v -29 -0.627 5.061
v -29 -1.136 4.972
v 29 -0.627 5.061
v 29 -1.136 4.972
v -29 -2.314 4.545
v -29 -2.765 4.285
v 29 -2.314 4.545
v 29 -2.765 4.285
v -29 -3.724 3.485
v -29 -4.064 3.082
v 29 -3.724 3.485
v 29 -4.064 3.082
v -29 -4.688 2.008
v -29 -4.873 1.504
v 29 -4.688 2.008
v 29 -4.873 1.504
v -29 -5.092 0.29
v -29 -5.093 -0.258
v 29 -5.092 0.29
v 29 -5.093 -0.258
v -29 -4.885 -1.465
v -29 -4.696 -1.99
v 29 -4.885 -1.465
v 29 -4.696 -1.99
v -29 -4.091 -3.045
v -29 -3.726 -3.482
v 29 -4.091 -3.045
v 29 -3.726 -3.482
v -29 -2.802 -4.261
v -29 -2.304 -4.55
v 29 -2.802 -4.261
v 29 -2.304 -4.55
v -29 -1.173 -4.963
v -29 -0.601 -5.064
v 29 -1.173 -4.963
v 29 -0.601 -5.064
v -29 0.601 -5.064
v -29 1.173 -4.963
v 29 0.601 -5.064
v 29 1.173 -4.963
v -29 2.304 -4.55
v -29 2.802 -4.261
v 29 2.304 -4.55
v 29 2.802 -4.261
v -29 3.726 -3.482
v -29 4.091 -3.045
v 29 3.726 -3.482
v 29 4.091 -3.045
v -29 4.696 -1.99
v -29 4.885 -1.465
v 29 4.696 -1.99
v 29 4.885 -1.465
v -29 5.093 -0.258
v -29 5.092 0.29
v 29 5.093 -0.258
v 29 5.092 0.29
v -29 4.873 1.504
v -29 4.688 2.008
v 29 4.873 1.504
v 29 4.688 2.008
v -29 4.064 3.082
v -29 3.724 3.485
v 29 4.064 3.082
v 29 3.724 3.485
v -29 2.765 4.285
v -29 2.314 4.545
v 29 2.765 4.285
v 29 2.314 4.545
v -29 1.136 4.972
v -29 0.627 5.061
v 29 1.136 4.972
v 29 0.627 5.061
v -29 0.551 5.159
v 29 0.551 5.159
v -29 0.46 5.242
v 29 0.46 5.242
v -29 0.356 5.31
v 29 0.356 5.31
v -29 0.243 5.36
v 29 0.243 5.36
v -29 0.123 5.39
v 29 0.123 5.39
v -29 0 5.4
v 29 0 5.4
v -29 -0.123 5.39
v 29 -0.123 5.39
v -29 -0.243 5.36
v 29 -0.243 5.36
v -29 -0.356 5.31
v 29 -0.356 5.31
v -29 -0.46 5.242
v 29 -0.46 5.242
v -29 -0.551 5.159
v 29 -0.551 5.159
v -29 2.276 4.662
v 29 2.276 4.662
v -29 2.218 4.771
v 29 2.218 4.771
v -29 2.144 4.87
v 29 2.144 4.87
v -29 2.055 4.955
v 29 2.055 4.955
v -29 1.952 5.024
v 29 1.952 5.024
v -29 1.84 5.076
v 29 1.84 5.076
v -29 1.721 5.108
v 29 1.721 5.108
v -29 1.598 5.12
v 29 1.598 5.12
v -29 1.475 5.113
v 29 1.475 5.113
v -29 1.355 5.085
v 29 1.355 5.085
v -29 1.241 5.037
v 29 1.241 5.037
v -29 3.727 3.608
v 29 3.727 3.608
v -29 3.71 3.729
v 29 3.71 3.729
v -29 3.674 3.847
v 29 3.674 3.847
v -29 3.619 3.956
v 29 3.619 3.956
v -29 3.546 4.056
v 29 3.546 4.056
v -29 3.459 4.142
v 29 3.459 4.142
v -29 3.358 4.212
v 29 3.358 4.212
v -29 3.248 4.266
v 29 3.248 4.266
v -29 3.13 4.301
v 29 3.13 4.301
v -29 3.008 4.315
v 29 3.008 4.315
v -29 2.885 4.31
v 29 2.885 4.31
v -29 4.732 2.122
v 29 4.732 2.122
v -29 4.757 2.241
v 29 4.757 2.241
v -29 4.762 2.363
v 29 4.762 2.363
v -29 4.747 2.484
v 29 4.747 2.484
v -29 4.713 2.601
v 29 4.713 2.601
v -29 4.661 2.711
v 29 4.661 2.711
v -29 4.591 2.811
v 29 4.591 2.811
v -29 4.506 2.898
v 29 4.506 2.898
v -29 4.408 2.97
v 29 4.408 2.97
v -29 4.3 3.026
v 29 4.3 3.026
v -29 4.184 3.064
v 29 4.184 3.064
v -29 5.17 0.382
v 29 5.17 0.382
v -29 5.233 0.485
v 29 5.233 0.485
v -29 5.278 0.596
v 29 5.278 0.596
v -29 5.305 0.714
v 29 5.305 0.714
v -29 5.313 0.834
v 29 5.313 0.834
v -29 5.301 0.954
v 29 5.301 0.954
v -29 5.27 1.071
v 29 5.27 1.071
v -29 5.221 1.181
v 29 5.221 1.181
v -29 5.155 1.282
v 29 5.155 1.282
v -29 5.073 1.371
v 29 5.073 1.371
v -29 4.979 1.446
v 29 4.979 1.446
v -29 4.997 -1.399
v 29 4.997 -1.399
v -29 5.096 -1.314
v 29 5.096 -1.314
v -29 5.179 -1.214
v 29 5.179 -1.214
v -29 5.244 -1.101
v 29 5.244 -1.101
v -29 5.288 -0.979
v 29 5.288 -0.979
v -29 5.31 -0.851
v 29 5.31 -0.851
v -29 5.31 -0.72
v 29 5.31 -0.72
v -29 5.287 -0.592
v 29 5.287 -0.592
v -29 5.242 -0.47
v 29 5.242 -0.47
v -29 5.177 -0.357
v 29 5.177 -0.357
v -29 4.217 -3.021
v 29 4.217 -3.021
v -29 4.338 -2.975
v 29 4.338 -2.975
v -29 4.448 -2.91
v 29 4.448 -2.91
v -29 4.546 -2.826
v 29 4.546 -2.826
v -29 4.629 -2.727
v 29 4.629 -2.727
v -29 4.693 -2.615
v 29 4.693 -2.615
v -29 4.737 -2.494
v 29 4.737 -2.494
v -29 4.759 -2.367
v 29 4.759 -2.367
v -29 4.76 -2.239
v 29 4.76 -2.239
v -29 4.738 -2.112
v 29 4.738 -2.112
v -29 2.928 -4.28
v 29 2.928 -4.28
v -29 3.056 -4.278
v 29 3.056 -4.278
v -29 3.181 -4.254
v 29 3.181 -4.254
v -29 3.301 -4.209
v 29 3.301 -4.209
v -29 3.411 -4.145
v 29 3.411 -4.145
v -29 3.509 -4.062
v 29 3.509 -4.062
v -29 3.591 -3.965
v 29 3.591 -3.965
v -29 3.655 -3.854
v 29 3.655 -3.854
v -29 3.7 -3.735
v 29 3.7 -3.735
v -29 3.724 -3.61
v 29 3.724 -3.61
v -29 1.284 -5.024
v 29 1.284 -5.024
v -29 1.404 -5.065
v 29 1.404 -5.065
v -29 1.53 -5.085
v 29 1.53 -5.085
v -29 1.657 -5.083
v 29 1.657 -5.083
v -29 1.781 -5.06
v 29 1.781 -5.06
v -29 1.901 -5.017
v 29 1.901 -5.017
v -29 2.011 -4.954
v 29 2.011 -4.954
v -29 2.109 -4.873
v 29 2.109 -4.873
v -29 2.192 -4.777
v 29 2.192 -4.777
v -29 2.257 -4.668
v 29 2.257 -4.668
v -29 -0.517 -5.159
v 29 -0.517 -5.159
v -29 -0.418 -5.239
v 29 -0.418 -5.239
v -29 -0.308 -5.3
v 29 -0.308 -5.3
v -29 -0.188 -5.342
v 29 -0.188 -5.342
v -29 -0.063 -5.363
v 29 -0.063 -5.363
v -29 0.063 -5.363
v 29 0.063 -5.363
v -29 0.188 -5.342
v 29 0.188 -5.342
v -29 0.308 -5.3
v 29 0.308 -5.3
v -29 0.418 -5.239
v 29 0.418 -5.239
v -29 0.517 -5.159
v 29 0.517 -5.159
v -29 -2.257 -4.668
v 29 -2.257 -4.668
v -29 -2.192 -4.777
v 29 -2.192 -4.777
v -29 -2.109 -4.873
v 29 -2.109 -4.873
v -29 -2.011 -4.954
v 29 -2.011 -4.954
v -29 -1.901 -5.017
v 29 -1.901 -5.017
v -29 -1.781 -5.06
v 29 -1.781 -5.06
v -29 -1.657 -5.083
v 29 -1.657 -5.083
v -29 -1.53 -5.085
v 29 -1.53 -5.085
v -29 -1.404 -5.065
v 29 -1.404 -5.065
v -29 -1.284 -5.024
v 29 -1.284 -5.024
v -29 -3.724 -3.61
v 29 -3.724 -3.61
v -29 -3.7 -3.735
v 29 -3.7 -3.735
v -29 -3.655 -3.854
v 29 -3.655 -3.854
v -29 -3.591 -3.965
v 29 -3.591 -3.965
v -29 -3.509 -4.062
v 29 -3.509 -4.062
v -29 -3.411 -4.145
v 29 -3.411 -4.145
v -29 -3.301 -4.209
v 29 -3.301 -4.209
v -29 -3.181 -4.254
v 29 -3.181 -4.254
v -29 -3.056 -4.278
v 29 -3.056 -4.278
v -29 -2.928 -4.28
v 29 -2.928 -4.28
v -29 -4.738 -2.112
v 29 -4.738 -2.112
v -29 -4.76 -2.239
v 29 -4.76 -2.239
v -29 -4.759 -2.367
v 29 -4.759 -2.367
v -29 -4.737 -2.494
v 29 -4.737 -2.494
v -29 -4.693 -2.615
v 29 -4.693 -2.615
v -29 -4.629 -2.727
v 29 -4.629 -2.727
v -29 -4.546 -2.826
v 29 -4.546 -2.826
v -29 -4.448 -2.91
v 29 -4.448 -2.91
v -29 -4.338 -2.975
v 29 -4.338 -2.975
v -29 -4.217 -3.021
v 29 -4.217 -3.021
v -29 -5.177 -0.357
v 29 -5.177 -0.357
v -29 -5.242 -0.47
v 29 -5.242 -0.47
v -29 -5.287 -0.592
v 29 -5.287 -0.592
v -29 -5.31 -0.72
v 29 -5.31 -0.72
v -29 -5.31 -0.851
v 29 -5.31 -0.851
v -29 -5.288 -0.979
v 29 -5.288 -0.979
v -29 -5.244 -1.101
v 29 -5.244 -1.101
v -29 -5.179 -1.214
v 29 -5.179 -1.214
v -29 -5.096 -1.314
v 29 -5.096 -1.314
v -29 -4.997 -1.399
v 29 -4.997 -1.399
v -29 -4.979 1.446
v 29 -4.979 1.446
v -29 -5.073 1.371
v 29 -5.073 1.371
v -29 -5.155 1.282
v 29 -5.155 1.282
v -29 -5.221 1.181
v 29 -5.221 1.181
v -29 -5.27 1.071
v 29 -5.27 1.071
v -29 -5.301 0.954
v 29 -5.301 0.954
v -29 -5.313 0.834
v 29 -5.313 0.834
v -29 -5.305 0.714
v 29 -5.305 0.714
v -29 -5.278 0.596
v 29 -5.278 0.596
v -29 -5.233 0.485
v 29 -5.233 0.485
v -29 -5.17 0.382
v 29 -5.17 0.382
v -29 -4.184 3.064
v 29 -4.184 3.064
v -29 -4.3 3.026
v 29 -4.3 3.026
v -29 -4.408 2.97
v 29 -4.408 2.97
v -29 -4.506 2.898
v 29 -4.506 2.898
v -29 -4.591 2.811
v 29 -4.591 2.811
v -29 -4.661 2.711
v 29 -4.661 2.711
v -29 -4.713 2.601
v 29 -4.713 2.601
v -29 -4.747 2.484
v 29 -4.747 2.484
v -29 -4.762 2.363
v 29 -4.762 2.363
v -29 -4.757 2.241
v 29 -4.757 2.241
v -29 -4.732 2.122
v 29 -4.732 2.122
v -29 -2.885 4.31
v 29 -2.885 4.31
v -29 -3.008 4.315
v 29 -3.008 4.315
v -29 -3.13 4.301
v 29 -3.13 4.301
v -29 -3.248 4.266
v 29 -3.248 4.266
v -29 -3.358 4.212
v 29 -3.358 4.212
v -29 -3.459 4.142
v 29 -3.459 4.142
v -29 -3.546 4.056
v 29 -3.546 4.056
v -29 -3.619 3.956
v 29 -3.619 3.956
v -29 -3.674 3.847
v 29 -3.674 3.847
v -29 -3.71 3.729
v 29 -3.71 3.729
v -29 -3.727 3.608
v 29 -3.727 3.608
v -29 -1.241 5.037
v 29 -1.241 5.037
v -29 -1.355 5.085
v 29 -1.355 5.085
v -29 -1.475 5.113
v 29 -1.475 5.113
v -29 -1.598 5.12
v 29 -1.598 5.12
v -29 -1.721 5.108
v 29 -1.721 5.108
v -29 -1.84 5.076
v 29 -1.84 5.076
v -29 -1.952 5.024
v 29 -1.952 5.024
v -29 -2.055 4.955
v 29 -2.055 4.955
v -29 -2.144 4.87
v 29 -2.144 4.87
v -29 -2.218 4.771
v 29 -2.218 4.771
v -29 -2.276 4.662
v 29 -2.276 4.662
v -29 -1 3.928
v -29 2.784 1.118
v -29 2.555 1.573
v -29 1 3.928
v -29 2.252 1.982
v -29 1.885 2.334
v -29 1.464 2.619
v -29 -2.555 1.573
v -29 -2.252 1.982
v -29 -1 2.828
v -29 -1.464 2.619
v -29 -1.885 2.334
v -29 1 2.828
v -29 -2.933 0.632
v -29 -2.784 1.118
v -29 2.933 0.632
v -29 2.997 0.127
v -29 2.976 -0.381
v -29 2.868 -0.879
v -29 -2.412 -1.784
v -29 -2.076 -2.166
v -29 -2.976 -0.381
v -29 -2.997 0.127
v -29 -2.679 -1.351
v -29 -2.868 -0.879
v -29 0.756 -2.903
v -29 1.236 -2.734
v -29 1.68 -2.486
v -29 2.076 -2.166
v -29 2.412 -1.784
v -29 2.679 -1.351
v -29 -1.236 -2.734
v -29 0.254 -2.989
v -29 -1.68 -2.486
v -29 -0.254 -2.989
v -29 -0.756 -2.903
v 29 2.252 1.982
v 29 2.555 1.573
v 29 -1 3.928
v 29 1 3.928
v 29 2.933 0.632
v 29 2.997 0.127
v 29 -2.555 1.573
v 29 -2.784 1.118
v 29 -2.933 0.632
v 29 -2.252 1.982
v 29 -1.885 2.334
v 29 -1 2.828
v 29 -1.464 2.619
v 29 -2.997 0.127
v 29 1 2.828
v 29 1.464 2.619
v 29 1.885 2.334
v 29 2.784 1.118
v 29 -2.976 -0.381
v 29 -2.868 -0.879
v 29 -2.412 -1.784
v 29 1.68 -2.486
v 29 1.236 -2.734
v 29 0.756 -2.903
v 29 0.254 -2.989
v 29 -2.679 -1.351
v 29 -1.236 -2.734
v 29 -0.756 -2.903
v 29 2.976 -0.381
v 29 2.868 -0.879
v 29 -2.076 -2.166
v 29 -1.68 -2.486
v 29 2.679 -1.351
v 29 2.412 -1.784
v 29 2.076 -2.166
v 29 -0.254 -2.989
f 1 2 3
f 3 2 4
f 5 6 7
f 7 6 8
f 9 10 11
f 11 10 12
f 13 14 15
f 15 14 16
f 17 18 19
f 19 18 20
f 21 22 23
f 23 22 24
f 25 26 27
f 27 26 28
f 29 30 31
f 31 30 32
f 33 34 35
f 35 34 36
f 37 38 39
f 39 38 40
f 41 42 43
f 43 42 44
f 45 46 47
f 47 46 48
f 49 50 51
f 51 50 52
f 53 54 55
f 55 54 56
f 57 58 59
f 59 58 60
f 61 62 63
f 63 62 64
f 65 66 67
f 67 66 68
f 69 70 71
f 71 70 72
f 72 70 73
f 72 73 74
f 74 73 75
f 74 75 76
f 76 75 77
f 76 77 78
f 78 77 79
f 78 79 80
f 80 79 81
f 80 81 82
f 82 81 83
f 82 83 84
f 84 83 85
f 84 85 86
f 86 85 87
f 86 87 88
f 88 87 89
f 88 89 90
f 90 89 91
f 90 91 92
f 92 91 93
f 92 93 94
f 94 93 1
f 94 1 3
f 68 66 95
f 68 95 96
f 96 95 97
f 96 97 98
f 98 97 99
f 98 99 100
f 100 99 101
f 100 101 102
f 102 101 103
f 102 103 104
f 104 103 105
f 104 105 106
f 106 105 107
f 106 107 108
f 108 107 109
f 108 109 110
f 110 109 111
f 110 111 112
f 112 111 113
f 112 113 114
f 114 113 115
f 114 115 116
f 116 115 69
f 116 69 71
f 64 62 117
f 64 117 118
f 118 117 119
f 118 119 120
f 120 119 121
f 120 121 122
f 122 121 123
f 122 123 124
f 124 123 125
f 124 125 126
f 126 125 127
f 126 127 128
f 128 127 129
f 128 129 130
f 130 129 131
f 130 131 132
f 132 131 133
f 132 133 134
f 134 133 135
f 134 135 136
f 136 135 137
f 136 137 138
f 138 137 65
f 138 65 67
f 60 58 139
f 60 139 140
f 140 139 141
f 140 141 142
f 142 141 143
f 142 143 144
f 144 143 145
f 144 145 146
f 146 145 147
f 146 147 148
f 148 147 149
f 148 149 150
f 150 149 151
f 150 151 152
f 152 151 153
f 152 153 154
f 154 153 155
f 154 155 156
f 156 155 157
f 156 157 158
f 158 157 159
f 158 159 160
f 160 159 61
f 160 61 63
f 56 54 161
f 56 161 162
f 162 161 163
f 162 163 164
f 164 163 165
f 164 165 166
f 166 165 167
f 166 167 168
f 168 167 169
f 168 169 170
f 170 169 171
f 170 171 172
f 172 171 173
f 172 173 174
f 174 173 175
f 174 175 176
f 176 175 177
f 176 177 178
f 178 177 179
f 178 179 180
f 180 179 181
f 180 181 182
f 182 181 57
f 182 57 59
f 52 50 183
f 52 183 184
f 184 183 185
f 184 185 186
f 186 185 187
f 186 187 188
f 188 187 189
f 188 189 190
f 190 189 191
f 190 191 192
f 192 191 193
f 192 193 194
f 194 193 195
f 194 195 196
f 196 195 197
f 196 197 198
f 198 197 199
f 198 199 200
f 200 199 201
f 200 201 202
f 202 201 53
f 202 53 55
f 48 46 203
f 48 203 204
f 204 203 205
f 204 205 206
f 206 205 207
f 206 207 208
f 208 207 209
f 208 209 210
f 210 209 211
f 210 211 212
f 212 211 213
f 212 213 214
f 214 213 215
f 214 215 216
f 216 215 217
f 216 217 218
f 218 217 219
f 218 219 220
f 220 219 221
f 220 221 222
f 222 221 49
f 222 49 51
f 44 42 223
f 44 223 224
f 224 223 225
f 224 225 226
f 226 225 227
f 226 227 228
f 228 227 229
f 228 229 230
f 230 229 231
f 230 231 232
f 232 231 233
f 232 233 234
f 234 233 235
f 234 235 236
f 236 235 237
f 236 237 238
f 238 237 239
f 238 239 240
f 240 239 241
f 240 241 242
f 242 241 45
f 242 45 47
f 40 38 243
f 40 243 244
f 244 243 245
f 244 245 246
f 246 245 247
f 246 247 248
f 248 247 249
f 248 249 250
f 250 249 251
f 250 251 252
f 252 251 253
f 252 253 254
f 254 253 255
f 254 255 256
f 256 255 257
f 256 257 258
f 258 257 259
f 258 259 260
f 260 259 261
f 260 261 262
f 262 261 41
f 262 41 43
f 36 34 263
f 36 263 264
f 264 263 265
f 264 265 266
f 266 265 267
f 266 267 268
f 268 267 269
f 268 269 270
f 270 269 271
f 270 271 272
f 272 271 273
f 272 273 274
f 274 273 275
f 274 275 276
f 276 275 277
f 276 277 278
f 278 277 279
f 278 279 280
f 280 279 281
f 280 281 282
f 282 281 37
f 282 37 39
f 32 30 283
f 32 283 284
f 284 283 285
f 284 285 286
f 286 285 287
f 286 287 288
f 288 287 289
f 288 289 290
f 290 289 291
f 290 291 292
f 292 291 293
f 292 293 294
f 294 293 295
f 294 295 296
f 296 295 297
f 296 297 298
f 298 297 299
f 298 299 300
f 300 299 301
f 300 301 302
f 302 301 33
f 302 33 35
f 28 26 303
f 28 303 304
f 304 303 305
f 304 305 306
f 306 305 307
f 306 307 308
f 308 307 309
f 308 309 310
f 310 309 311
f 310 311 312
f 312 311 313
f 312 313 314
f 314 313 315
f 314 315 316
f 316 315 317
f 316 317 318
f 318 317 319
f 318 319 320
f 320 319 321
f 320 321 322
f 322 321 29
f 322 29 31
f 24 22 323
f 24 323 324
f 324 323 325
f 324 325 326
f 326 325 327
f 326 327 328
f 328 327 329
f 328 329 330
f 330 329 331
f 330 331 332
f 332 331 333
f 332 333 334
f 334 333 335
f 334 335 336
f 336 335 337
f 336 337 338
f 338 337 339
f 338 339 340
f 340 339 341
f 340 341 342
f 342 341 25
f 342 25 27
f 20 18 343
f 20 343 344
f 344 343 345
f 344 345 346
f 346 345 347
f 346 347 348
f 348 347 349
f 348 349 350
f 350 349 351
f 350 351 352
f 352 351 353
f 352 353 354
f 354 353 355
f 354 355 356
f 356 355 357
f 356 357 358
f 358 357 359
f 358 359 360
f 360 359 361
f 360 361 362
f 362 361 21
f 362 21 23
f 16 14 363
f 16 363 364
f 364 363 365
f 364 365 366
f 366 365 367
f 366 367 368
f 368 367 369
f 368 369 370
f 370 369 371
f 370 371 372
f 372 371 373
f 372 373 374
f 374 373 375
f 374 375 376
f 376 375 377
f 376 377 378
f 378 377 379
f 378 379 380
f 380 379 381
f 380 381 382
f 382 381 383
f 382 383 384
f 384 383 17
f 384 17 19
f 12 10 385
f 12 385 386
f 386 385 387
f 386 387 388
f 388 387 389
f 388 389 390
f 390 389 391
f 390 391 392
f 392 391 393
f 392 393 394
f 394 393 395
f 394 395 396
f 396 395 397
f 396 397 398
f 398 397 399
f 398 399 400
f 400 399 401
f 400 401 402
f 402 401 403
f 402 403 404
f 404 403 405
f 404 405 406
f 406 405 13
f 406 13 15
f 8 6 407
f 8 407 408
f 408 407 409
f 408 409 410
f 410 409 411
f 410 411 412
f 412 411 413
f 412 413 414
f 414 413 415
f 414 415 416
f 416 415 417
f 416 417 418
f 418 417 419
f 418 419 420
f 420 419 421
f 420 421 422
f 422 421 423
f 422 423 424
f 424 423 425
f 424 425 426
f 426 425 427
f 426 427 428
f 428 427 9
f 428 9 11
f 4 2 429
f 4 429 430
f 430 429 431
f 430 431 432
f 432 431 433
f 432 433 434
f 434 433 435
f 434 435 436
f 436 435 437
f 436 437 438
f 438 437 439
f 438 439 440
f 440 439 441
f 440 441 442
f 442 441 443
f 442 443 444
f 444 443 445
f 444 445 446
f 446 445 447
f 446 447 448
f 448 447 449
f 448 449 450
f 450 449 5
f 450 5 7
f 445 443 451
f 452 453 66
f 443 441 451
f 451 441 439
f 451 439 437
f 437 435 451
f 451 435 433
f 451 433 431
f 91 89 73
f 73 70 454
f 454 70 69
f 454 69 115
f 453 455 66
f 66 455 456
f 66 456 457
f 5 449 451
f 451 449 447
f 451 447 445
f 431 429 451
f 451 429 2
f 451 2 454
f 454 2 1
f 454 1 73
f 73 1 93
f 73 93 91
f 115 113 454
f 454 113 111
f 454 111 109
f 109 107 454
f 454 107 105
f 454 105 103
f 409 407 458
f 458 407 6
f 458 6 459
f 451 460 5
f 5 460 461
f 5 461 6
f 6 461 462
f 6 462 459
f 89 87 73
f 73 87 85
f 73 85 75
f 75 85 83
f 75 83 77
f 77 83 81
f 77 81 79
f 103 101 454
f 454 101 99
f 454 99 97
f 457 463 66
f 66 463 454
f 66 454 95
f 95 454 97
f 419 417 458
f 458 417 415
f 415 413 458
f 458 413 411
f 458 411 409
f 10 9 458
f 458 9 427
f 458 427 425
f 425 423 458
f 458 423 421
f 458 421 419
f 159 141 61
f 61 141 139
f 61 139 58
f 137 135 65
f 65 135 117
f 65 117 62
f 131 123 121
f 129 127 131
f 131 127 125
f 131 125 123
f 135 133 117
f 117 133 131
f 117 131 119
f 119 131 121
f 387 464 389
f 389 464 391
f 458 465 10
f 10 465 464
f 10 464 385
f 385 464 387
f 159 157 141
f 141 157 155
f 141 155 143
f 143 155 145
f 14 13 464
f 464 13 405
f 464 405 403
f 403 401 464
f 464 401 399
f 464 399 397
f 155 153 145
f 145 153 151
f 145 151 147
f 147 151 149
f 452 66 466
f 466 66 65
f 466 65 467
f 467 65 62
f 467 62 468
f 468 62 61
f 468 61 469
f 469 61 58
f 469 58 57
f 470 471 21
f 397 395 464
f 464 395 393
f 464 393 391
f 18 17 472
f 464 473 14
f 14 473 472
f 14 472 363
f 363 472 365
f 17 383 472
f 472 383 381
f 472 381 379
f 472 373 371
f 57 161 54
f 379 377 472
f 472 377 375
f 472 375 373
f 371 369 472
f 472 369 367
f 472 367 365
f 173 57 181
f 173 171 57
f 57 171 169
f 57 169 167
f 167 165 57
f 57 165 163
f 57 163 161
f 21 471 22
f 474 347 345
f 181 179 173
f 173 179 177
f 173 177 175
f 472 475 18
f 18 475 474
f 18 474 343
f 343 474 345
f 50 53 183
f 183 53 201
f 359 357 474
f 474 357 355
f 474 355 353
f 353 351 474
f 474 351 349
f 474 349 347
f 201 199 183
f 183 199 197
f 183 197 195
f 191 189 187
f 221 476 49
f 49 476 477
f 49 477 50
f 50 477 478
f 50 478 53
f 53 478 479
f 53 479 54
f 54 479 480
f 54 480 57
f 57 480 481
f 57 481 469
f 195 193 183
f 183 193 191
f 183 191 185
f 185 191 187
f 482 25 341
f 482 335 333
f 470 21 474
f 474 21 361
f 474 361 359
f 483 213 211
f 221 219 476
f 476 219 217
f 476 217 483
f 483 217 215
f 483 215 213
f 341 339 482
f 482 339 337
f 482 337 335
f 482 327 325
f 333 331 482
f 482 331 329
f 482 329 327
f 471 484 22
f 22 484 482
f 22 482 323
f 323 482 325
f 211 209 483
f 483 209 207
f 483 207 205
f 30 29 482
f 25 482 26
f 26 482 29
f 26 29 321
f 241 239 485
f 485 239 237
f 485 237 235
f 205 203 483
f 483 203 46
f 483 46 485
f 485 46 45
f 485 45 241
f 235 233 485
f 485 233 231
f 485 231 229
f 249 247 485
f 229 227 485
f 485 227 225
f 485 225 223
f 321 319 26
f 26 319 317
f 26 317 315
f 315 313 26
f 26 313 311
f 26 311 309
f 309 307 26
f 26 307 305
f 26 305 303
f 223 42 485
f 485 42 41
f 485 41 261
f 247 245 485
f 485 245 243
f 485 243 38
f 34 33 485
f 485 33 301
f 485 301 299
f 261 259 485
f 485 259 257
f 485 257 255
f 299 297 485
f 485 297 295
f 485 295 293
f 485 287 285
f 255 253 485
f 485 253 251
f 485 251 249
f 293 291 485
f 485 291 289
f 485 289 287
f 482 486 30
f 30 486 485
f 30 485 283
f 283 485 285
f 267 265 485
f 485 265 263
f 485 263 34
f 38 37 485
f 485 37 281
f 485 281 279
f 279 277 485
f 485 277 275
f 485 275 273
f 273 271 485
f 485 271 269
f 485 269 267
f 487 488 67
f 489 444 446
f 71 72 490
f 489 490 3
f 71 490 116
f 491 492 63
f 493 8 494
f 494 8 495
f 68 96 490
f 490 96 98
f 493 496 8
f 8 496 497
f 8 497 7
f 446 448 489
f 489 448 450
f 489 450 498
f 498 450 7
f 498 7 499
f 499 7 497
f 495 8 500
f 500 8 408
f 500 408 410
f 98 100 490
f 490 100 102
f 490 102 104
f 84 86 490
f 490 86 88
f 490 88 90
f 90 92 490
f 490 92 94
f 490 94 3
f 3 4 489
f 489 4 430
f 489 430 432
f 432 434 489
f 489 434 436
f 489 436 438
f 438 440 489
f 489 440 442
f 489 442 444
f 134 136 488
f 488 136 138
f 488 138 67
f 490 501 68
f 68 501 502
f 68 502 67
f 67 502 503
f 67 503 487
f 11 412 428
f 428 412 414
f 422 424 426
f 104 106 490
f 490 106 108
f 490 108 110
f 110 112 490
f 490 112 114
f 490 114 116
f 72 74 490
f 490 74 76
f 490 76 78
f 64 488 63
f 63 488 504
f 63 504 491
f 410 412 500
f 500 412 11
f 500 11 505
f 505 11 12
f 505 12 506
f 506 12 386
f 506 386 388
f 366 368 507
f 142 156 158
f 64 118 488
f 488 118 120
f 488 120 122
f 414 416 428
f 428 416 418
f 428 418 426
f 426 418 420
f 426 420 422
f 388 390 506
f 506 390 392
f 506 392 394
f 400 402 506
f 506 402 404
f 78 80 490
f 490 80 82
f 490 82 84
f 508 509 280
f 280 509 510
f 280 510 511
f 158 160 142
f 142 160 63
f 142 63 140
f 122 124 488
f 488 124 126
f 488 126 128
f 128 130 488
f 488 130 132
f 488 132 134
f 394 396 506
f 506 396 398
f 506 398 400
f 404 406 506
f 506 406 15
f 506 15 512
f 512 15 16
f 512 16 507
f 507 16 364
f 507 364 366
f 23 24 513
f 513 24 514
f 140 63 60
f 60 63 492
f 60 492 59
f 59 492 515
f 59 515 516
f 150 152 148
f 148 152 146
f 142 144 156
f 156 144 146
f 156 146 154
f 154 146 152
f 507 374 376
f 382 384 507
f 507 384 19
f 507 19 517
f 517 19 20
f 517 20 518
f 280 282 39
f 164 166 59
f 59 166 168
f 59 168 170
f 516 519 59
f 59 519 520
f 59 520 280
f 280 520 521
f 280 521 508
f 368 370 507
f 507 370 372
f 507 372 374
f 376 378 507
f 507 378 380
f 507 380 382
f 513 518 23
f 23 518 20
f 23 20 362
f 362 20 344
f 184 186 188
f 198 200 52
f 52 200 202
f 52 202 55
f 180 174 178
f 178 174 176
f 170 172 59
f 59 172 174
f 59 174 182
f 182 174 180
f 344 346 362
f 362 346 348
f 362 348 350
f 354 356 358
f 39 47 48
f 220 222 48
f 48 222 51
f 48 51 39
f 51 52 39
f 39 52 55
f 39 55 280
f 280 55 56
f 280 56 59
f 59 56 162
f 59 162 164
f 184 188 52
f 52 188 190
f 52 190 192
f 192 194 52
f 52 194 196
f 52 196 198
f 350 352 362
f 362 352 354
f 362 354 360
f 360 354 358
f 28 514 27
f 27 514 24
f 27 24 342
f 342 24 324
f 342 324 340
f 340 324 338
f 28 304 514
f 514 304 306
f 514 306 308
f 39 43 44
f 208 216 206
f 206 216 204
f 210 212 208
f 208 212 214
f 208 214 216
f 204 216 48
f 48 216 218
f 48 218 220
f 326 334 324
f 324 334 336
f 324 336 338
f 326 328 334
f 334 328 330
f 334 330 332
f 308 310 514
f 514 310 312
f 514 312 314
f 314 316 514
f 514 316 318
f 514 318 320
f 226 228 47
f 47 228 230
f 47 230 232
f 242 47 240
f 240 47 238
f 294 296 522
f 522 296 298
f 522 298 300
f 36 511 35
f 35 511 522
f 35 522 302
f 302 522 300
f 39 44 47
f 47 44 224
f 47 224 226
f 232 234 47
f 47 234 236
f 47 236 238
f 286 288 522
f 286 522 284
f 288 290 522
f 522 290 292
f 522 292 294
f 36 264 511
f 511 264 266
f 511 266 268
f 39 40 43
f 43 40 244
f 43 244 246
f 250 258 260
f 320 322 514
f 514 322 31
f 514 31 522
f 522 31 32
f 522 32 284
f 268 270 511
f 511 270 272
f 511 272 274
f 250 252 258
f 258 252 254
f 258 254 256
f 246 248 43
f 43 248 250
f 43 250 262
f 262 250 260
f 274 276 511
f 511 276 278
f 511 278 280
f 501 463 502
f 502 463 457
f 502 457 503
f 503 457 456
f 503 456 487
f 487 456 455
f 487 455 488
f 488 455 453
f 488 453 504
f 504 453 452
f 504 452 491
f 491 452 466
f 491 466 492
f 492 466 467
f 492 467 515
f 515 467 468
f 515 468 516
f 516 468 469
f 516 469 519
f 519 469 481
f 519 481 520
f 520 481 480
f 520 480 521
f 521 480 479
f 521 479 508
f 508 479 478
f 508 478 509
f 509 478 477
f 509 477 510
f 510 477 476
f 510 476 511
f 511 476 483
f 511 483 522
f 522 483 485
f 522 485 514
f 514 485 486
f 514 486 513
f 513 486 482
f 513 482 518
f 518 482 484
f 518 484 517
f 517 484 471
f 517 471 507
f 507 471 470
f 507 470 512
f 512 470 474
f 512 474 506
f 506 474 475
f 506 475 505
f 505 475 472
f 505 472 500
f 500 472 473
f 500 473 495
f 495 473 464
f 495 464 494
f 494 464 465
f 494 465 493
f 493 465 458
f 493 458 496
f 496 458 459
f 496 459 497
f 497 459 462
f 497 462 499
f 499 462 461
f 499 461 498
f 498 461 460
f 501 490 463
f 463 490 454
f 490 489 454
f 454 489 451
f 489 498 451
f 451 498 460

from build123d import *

# Parameters (mm, degrees)
SKETCH1_W               = 30
SKETCH1_H               = 5.1
CIRPATTERN1_COUNT       = 18
CUT_EXTRUDE2_DEPTH      = 1
CUT_EXTRUDE2_DEPTH_BACK = 1
SKETCH13_R              = 5.864313224
CUT_EXTRUDE3_DEPTH      = 1
CUT_EXTRUDE3_DEPTH_BACK = 1
SKETCH14_R              = 6.155891313
CUT_EXTRUDE4_DEPTH      = 59.492599661


with BuildPart() as part:
    # Sketch1 → Revolve1 (revolve)
    with BuildSketch(Plane(origin=(0, 0, 0), x_dir=(-1, 0, 0), z_dir=(0, 1, 0))):
        with Locations((-15, 2.55)):
            Rectangle(SKETCH1_W, SKETCH1_H)
    revolve1 = revolve(axis=Axis((0, 0, 0), (1, 0, 0)))

    # Sweep3: sweep along a path in Sketch2
    with BuildLine(Plane(origin=(0, 0, 0), x_dir=(-1, 0, 0), z_dir=(0, 1, 0))) as sweep3_path:
        Line((-30, 5.1), (0, 5.1))
    # Sketch3 → Sweep3 (sweep)
    with BuildSketch(Plane(origin=(0, 0, 0), x_dir=(0, -1, 0), z_dir=(-1, 0, 0))):
        with BuildLine():
            Line((0.75, 4.65), (0.75, 2.55))
            ThreePointArc((0.75, 2.55), (0, 1.8), (-0.75, 2.55))
            Line((-0.75, 2.55), (-0.75, 4.65))
            ThreePointArc((-0.75, 4.65), (0, 5.4), (0.75, 4.65))
        make_face()
    sweep3 = sweep(path=sweep3_path.line)

    # CirPattern1: Sweep3 ×18 about axis
    cirpattern1_axis = Axis((0, 0, 0.01696711), (1, 0, 0))
    for i in range(1, CIRPATTERN1_COUNT):
        add(sweep3.rotate(cirpattern1_axis, i * 360 / CIRPATTERN1_COUNT))

    # Mirror1: Revolve1, Sweep3 across plane
    add(revolve1.mirror(Plane(origin=(0, 0, 0), x_dir=(0, 0, 1), z_dir=(1, 0, 0))))
    add(sweep3.mirror(Plane(origin=(0, 0, 0), x_dir=(0, 0, 1), z_dir=(1, 0, 0))))

    # Mirror1 copy 1: sweep along a path in Mirror1 copy 1 path
    with BuildLine(Plane(origin=(0, 0.005803093, 0.001023242), x_dir=(1, 0, 0), z_dir=(0, 0.9396926207859084, 0.3420201433256687))) as mirror1_copy_1_path:
        Line((-30, -5.1), (0, -5.1))
    # Mirror1 copy 1 sketch → Mirror1 copy 1 (sweep)
    with BuildSketch(Plane(origin=(0, 0.005803093, 0.001023242), x_dir=(0, -0.9396926207859084, -0.3420201433256687), z_dir=(1, 0, 0))):
        with BuildLine():
            Line((0.75, -4.65), (0.75, -2.55))
            ThreePointArc((0.75, -2.55), (0, -1.8), (-0.75, -2.55))
            Line((-0.75, -2.55), (-0.75, -4.65))
            ThreePointArc((-0.75, -4.65), (0, -5.4), (0.75, -4.65))
        make_face()
    sweep(path=mirror1_copy_1_path.line)

    # Mirror1 copy 2: sweep along a path in Mirror1 copy 2 path
    with BuildLine(Plane(origin=(0, 0.010906248, 0.00396955), x_dir=(1, 0, 0), z_dir=(0, 0.766044443118978, 0.6427876096865393))) as mirror1_copy_2_path:
        Line((-30, -5.1), (0, -5.1))
    # Mirror1 copy 2 sketch → Mirror1 copy 2 (sweep)
    with BuildSketch(Plane(origin=(0, 0.010906248, 0.00396955), x_dir=(0, -0.766044443118978, -0.6427876096865393), z_dir=(1, 0, 0))):
        with BuildLine():
            Line((0.75, -4.65), (0.75, -2.55))
            ThreePointArc((0.75, -2.55), (0, -1.8), (-0.75, -2.55))
            Line((-0.75, -2.55), (-0.75, -4.65))
            ThreePointArc((-0.75, -4.65), (0, -5.4), (0.75, -4.65))
        make_face()
    sweep(path=mirror1_copy_2_path.line)

    # Mirror1 copy 3: sweep along a path in Mirror1 copy 3 path
    with BuildLine(Plane(origin=(0, 0.014693948, 0.008483555), x_dir=(1, 0, 0), z_dir=(0, 0.5000000000000001, 0.8660254037844386))) as mirror1_copy_3_path:
        Line((-30, -5.1), (0, -5.1))
    # Mirror1 copy 3 sketch → Mirror1 copy 3 (sweep)
    with BuildSketch(Plane(origin=(0, 0.014693948, 0.008483555), x_dir=(0, -0.5000000000000001, -0.8660254037844386), z_dir=(1, 0, 0))):
        with BuildLine():
            Line((0.75, -4.65), (0.75, -2.55))
            ThreePointArc((0.75, -2.55), (0, -1.8), (-0.75, -2.55))
            Line((-0.75, -2.55), (-0.75, -4.65))
            ThreePointArc((-0.75, -4.65), (0, -5.4), (0.75, -4.65))
        make_face()
    sweep(path=mirror1_copy_3_path.line)

    # Mirror1 copy 4: sweep along a path in Mirror1 copy 4 path
    with BuildLine(Plane(origin=(0, 0.016709341, 0.014020802), x_dir=(1, 0, 0), z_dir=(0, 0.17364817766693041, 0.984807753012208))) as mirror1_copy_4_path:
        Line((-30, -5.1), (0, -5.1))
    # Mirror1 copy 4 sketch → Mirror1 copy 4 (sweep)
    with BuildSketch(Plane(origin=(0, 0.016709341, 0.014020802), x_dir=(0, -0.17364817766693041, -0.984807753012208), z_dir=(1, 0, 0))):
        with BuildLine():
            Line((0.75, -4.65), (0.75, -2.55))
            ThreePointArc((0.75, -2.55), (0, -1.8), (-0.75, -2.55))
            Line((-0.75, -2.55), (-0.75, -4.65))
            ThreePointArc((-0.75, -4.65), (0, -5.4), (0.75, -4.65))
        make_face()
    sweep(path=mirror1_copy_4_path.line)

    # Mirror1 copy 5: sweep along a path in Mirror1 copy 5 path
    with BuildLine(Plane(origin=(0, 0.016709341, 0.019913417), x_dir=(1, 0, 0), z_dir=(0, -0.1736481776669303, 0.984807753012208))) as mirror1_copy_5_path:
        Line((-30, -5.1), (0, -5.1))
    # Mirror1 copy 5 sketch → Mirror1 copy 5 (sweep)
    with BuildSketch(Plane(origin=(0, 0.016709341, 0.019913417), x_dir=(0, 0.1736481776669303, -0.984807753012208), z_dir=(1, 0, 0))):
        with BuildLine():
            Line((0.75, -4.65), (0.75, -2.55))
            ThreePointArc((0.75, -2.55), (0, -1.8), (-0.75, -2.55))
            Line((-0.75, -2.55), (-0.75, -4.65))
            ThreePointArc((-0.75, -4.65), (0, -5.4), (0.75, -4.65))
        make_face()
    sweep(path=mirror1_copy_5_path.line)

    # Mirror1 copy 6: sweep along a path in Mirror1 copy 6 path
    with BuildLine(Plane(origin=(0, 0.014693948, 0.025450665), x_dir=(1, 0, 0), z_dir=(0, -0.4999999999999998, 0.8660254037844387))) as mirror1_copy_6_path:
        Line((-30, -5.1), (0, -5.1))
    # Mirror1 copy 6 sketch → Mirror1 copy 6 (sweep)
    with BuildSketch(Plane(origin=(0, 0.014693948, 0.025450665), x_dir=(0, 0.4999999999999998, -0.8660254037844387), z_dir=(1, 0, 0))):
        with BuildLine():
            Line((0.75, -4.65), (0.75, -2.55))
            ThreePointArc((0.75, -2.55), (0, -1.8), (-0.75, -2.55))
            Line((-0.75, -2.55), (-0.75, -4.65))
            ThreePointArc((-0.75, -4.65), (0, -5.4), (0.75, -4.65))
        make_face()
    sweep(path=mirror1_copy_6_path.line)

    # Mirror1 copy 7: sweep along a path in Mirror1 copy 7 path
    with BuildLine(Plane(origin=(0, 0.010906248, 0.02996467), x_dir=(1, 0, 0), z_dir=(0, -0.7660444431189779, 0.6427876096865395))) as mirror1_copy_7_path:
        Line((-30, -5.1), (0, -5.1))
    # Mirror1 copy 7 sketch → Mirror1 copy 7 (sweep)
    with BuildSketch(Plane(origin=(0, 0.010906248, 0.02996467), x_dir=(0, 0.7660444431189779, -0.6427876096865395), z_dir=(1, 0, 0))):
        with BuildLine():
            Line((0.75, -4.65), (0.75, -2.55))
            ThreePointArc((0.75, -2.55), (0, -1.8), (-0.75, -2.55))
            Line((-0.75, -2.55), (-0.75, -4.65))
            ThreePointArc((-0.75, -4.65), (0, -5.4), (0.75, -4.65))
        make_face()
    sweep(path=mirror1_copy_7_path.line)

    # Mirror1 copy 8: sweep along a path in Mirror1 copy 8 path
    with BuildLine(Plane(origin=(0, 0.005803093, 0.032910978), x_dir=(1, 0, 0), z_dir=(0, -0.9396926207859083, 0.3420201433256689))) as mirror1_copy_8_path:
        Line((-30, -5.1), (0, -5.1))
    # Mirror1 copy 8 sketch → Mirror1 copy 8 (sweep)
    with BuildSketch(Plane(origin=(0, 0.005803093, 0.032910978), x_dir=(0, 0.9396926207859083, -0.3420201433256689), z_dir=(1, 0, 0))):
        with BuildLine():
            Line((0.75, -4.65), (0.75, -2.55))
            ThreePointArc((0.75, -2.55), (0, -1.8), (-0.75, -2.55))
            Line((-0.75, -2.55), (-0.75, -4.65))
            ThreePointArc((-0.75, -4.65), (0, -5.4), (0.75, -4.65))
        make_face()
    sweep(path=mirror1_copy_8_path.line)

    # Mirror1 copy 9: sweep along a path in Mirror1 copy 9 path
    with BuildLine(Plane(origin=(0, 0, 0.03393422), x_dir=(1, 0, 0), z_dir=(0, -1, 0))) as mirror1_copy_9_path:
        Line((-30, -5.1), (0, -5.1))
    # Mirror1 copy 9 sketch → Mirror1 copy 9 (sweep)
    with BuildSketch(Plane(origin=(0, 0, 0.03393422), x_dir=(0, 1, 0), z_dir=(1, 0, 0))):
        with BuildLine():
            Line((0.75, -4.65), (0.75, -2.55))
            ThreePointArc((0.75, -2.55), (0, -1.8), (-0.75, -2.55))
            Line((-0.75, -2.55), (-0.75, -4.65))
            ThreePointArc((-0.75, -4.65), (0, -5.4), (0.75, -4.65))
        make_face()
    sweep(path=mirror1_copy_9_path.line)

    # Mirror1 copy 10: sweep along a path in Mirror1 copy 10 path
    with BuildLine(Plane(origin=(0, -0.005803093, 0.032910978), x_dir=(1, 0, 0), z_dir=(0, -0.9396926207859084, -0.34202014332566866))) as mirror1_copy_10_path:
        Line((-30, -5.1), (0, -5.1))
    # Mirror1 copy 10 sketch → Mirror1 copy 10 (sweep)
    with BuildSketch(Plane(origin=(0, -0.005803093, 0.032910978), x_dir=(0, 0.9396926207859084, 0.34202014332566866), z_dir=(1, 0, 0))):
        with BuildLine():
            Line((0.75, -4.65), (0.75, -2.55))
            ThreePointArc((0.75, -2.55), (0, -1.8), (-0.75, -2.55))
            Line((-0.75, -2.55), (-0.75, -4.65))
            ThreePointArc((-0.75, -4.65), (0, -5.4), (0.75, -4.65))
        make_face()
    sweep(path=mirror1_copy_10_path.line)

    # Mirror1 copy 11: sweep along a path in Mirror1 copy 11 path
    with BuildLine(Plane(origin=(0, -0.010906248, 0.02996467), x_dir=(1, 0, 0), z_dir=(0, -0.766044443118978, -0.6427876096865393))) as mirror1_copy_11_path:
        Line((-30, -5.1), (0, -5.1))
    # Mirror1 copy 11 sketch → Mirror1 copy 11 (sweep)
    with BuildSketch(Plane(origin=(0, -0.010906248, 0.02996467), x_dir=(0, 0.766044443118978, 0.6427876096865393), z_dir=(1, 0, 0))):
        with BuildLine():
            Line((0.75, -4.65), (0.75, -2.55))
            ThreePointArc((0.75, -2.55), (0, -1.8), (-0.75, -2.55))
            Line((-0.75, -2.55), (-0.75, -4.65))
            ThreePointArc((-0.75, -4.65), (0, -5.4), (0.75, -4.65))
        make_face()
    sweep(path=mirror1_copy_11_path.line)

    # Mirror1 copy 12: sweep along a path in Mirror1 copy 12 path
    with BuildLine(Plane(origin=(0, -0.014693948, 0.025450665), x_dir=(1, 0, 0), z_dir=(0, -0.5000000000000004, -0.8660254037844384))) as mirror1_copy_12_path:
        Line((-30, -5.1), (0, -5.1))
    # Mirror1 copy 12 sketch → Mirror1 copy 12 (sweep)
    with BuildSketch(Plane(origin=(0, -0.014693948, 0.025450665), x_dir=(0, 0.5000000000000004, 0.8660254037844384), z_dir=(1, 0, 0))):
        with BuildLine():
            Line((0.75, -4.65), (0.75, -2.55))
            ThreePointArc((0.75, -2.55), (0, -1.8), (-0.75, -2.55))
            Line((-0.75, -2.55), (-0.75, -4.65))
            ThreePointArc((-0.75, -4.65), (0, -5.4), (0.75, -4.65))
        make_face()
    sweep(path=mirror1_copy_12_path.line)

    # Mirror1 copy 13: sweep along a path in Mirror1 copy 13 path
    with BuildLine(Plane(origin=(0, -0.016709341, 0.019913417), x_dir=(1, 0, 0), z_dir=(0, -0.17364817766693033, -0.984807753012208))) as mirror1_copy_13_path:
        Line((-30, -5.1), (0, -5.1))
    # Mirror1 copy 13 sketch → Mirror1 copy 13 (sweep)
    with BuildSketch(Plane(origin=(0, -0.016709341, 0.019913417), x_dir=(0, 0.17364817766693033, 0.984807753012208), z_dir=(1, 0, 0))):
        with BuildLine():
            Line((0.75, -4.65), (0.75, -2.55))
            ThreePointArc((0.75, -2.55), (0, -1.8), (-0.75, -2.55))
            Line((-0.75, -2.55), (-0.75, -4.65))
            ThreePointArc((-0.75, -4.65), (0, -5.4), (0.75, -4.65))
        make_face()
    sweep(path=mirror1_copy_13_path.line)

    # Mirror1 copy 14: sweep along a path in Mirror1 copy 14 path
    with BuildLine(Plane(origin=(0, -0.016709341, 0.014020802), x_dir=(1, 0, 0), z_dir=(0, 0.17364817766692997, -0.9848077530122081))) as mirror1_copy_14_path:
        Line((-30, -5.1), (0, -5.1))
    # Mirror1 copy 14 sketch → Mirror1 copy 14 (sweep)
    with BuildSketch(Plane(origin=(0, -0.016709341, 0.014020802), x_dir=(0, -0.17364817766692997, 0.9848077530122081), z_dir=(1, 0, 0))):
        with BuildLine():
            Line((0.75, -4.65), (0.75, -2.55))
            ThreePointArc((0.75, -2.55), (0, -1.8), (-0.75, -2.55))
            Line((-0.75, -2.55), (-0.75, -4.65))
            ThreePointArc((-0.75, -4.65), (0, -5.4), (0.75, -4.65))
        make_face()
    sweep(path=mirror1_copy_14_path.line)

    # Mirror1 copy 15: sweep along a path in Mirror1 copy 15 path
    with BuildLine(Plane(origin=(0, -0.014693948, 0.008483555), x_dir=(1, 0, 0), z_dir=(0, 0.5000000000000001, -0.8660254037844386))) as mirror1_copy_15_path:
        Line((-30, -5.1), (0, -5.1))
    # Mirror1 copy 15 sketch → Mirror1 copy 15 (sweep)
    with BuildSketch(Plane(origin=(0, -0.014693948, 0.008483555), x_dir=(0, -0.5000000000000001, 0.8660254037844386), z_dir=(1, 0, 0))):
        with BuildLine():
            Line((0.75, -4.65), (0.75, -2.55))
            ThreePointArc((0.75, -2.55), (0, -1.8), (-0.75, -2.55))
            Line((-0.75, -2.55), (-0.75, -4.65))
            ThreePointArc((-0.75, -4.65), (0, -5.4), (0.75, -4.65))
        make_face()
    sweep(path=mirror1_copy_15_path.line)

    # Mirror1 copy 16: sweep along a path in Mirror1 copy 16 path
    with BuildLine(Plane(origin=(0, -0.010906248, 0.00396955), x_dir=(1, 0, 0), z_dir=(0, 0.7660444431189778, -0.6427876096865396))) as mirror1_copy_16_path:
        Line((-30, -5.1), (0, -5.1))
    # Mirror1 copy 16 sketch → Mirror1 copy 16 (sweep)
    with BuildSketch(Plane(origin=(0, -0.010906248, 0.00396955), x_dir=(0, -0.7660444431189778, 0.6427876096865396), z_dir=(1, 0, 0))):
        with BuildLine():
            Line((0.75, -4.65), (0.75, -2.55))
            ThreePointArc((0.75, -2.55), (0, -1.8), (-0.75, -2.55))
            Line((-0.75, -2.55), (-0.75, -4.65))
            ThreePointArc((-0.75, -4.65), (0, -5.4), (0.75, -4.65))
        make_face()
    sweep(path=mirror1_copy_16_path.line)

    # Mirror1 copy 17: sweep along a path in Mirror1 copy 17 path
    with BuildLine(Plane(origin=(0, -0.005803093, 0.001023242), x_dir=(1, 0, 0), z_dir=(0, 0.9396926207859084, -0.3420201433256686))) as mirror1_copy_17_path:
        Line((-30, -5.1), (0, -5.1))
    # Mirror1 copy 17 sketch → Mirror1 copy 17 (sweep)
    with BuildSketch(Plane(origin=(0, -0.005803093, 0.001023242), x_dir=(0, -0.9396926207859084, 0.3420201433256686), z_dir=(1, 0, 0))):
        with BuildLine():
            Line((0.75, -4.65), (0.75, -2.55))
            ThreePointArc((0.75, -2.55), (0, -1.8), (-0.75, -2.55))
            Line((-0.75, -2.55), (-0.75, -4.65))
            ThreePointArc((-0.75, -4.65), (0, -5.4), (0.75, -4.65))
        make_face()
    sweep(path=mirror1_copy_17_path.line)

    # Sketch13 → Cut-Extrude2 (cut, two sides: drawn at the far end of the back side and taken through both)
    with BuildSketch(Plane(origin=(-30, 0, 0), x_dir=(0, -1, 0), z_dir=(-1, 0, 0)).offset(-CUT_EXTRUDE2_DEPTH_BACK)):
        Circle(SKETCH13_R)
    extrude(amount=CUT_EXTRUDE2_DEPTH + CUT_EXTRUDE2_DEPTH_BACK, mode=Mode.SUBTRACT)

    # Sketch14 → Cut-Extrude3 (cut, two sides: drawn at the far end of the back side and taken through both)
    with BuildSketch(Plane.YZ.offset(30).offset(-CUT_EXTRUDE3_DEPTH_BACK)):
        Circle(SKETCH14_R)
    extrude(amount=CUT_EXTRUDE3_DEPTH + CUT_EXTRUDE3_DEPTH_BACK, mode=Mode.SUBTRACT)

    # Sketch15 → Cut-Extrude4 (cut, through all)
    with BuildSketch(Plane(origin=(-29, 0, 0), x_dir=(0, -1, 0), z_dir=(-1, 0, 0))):
        with BuildLine():
            Line((-1, 3.928427125), (1, 3.928427125))
            Line((1, 3.928427125), (1, 2.828427125))
            ThreePointArc((1, 2.828427125), (0, -3), (-1, 2.828427125))
            Line((-1, 2.828427125), (-1, 3.928427125))
        make_face()
    extrude(amount=-CUT_EXTRUDE4_DEPTH, mode=Mode.SUBTRACT)


solid = part.part
